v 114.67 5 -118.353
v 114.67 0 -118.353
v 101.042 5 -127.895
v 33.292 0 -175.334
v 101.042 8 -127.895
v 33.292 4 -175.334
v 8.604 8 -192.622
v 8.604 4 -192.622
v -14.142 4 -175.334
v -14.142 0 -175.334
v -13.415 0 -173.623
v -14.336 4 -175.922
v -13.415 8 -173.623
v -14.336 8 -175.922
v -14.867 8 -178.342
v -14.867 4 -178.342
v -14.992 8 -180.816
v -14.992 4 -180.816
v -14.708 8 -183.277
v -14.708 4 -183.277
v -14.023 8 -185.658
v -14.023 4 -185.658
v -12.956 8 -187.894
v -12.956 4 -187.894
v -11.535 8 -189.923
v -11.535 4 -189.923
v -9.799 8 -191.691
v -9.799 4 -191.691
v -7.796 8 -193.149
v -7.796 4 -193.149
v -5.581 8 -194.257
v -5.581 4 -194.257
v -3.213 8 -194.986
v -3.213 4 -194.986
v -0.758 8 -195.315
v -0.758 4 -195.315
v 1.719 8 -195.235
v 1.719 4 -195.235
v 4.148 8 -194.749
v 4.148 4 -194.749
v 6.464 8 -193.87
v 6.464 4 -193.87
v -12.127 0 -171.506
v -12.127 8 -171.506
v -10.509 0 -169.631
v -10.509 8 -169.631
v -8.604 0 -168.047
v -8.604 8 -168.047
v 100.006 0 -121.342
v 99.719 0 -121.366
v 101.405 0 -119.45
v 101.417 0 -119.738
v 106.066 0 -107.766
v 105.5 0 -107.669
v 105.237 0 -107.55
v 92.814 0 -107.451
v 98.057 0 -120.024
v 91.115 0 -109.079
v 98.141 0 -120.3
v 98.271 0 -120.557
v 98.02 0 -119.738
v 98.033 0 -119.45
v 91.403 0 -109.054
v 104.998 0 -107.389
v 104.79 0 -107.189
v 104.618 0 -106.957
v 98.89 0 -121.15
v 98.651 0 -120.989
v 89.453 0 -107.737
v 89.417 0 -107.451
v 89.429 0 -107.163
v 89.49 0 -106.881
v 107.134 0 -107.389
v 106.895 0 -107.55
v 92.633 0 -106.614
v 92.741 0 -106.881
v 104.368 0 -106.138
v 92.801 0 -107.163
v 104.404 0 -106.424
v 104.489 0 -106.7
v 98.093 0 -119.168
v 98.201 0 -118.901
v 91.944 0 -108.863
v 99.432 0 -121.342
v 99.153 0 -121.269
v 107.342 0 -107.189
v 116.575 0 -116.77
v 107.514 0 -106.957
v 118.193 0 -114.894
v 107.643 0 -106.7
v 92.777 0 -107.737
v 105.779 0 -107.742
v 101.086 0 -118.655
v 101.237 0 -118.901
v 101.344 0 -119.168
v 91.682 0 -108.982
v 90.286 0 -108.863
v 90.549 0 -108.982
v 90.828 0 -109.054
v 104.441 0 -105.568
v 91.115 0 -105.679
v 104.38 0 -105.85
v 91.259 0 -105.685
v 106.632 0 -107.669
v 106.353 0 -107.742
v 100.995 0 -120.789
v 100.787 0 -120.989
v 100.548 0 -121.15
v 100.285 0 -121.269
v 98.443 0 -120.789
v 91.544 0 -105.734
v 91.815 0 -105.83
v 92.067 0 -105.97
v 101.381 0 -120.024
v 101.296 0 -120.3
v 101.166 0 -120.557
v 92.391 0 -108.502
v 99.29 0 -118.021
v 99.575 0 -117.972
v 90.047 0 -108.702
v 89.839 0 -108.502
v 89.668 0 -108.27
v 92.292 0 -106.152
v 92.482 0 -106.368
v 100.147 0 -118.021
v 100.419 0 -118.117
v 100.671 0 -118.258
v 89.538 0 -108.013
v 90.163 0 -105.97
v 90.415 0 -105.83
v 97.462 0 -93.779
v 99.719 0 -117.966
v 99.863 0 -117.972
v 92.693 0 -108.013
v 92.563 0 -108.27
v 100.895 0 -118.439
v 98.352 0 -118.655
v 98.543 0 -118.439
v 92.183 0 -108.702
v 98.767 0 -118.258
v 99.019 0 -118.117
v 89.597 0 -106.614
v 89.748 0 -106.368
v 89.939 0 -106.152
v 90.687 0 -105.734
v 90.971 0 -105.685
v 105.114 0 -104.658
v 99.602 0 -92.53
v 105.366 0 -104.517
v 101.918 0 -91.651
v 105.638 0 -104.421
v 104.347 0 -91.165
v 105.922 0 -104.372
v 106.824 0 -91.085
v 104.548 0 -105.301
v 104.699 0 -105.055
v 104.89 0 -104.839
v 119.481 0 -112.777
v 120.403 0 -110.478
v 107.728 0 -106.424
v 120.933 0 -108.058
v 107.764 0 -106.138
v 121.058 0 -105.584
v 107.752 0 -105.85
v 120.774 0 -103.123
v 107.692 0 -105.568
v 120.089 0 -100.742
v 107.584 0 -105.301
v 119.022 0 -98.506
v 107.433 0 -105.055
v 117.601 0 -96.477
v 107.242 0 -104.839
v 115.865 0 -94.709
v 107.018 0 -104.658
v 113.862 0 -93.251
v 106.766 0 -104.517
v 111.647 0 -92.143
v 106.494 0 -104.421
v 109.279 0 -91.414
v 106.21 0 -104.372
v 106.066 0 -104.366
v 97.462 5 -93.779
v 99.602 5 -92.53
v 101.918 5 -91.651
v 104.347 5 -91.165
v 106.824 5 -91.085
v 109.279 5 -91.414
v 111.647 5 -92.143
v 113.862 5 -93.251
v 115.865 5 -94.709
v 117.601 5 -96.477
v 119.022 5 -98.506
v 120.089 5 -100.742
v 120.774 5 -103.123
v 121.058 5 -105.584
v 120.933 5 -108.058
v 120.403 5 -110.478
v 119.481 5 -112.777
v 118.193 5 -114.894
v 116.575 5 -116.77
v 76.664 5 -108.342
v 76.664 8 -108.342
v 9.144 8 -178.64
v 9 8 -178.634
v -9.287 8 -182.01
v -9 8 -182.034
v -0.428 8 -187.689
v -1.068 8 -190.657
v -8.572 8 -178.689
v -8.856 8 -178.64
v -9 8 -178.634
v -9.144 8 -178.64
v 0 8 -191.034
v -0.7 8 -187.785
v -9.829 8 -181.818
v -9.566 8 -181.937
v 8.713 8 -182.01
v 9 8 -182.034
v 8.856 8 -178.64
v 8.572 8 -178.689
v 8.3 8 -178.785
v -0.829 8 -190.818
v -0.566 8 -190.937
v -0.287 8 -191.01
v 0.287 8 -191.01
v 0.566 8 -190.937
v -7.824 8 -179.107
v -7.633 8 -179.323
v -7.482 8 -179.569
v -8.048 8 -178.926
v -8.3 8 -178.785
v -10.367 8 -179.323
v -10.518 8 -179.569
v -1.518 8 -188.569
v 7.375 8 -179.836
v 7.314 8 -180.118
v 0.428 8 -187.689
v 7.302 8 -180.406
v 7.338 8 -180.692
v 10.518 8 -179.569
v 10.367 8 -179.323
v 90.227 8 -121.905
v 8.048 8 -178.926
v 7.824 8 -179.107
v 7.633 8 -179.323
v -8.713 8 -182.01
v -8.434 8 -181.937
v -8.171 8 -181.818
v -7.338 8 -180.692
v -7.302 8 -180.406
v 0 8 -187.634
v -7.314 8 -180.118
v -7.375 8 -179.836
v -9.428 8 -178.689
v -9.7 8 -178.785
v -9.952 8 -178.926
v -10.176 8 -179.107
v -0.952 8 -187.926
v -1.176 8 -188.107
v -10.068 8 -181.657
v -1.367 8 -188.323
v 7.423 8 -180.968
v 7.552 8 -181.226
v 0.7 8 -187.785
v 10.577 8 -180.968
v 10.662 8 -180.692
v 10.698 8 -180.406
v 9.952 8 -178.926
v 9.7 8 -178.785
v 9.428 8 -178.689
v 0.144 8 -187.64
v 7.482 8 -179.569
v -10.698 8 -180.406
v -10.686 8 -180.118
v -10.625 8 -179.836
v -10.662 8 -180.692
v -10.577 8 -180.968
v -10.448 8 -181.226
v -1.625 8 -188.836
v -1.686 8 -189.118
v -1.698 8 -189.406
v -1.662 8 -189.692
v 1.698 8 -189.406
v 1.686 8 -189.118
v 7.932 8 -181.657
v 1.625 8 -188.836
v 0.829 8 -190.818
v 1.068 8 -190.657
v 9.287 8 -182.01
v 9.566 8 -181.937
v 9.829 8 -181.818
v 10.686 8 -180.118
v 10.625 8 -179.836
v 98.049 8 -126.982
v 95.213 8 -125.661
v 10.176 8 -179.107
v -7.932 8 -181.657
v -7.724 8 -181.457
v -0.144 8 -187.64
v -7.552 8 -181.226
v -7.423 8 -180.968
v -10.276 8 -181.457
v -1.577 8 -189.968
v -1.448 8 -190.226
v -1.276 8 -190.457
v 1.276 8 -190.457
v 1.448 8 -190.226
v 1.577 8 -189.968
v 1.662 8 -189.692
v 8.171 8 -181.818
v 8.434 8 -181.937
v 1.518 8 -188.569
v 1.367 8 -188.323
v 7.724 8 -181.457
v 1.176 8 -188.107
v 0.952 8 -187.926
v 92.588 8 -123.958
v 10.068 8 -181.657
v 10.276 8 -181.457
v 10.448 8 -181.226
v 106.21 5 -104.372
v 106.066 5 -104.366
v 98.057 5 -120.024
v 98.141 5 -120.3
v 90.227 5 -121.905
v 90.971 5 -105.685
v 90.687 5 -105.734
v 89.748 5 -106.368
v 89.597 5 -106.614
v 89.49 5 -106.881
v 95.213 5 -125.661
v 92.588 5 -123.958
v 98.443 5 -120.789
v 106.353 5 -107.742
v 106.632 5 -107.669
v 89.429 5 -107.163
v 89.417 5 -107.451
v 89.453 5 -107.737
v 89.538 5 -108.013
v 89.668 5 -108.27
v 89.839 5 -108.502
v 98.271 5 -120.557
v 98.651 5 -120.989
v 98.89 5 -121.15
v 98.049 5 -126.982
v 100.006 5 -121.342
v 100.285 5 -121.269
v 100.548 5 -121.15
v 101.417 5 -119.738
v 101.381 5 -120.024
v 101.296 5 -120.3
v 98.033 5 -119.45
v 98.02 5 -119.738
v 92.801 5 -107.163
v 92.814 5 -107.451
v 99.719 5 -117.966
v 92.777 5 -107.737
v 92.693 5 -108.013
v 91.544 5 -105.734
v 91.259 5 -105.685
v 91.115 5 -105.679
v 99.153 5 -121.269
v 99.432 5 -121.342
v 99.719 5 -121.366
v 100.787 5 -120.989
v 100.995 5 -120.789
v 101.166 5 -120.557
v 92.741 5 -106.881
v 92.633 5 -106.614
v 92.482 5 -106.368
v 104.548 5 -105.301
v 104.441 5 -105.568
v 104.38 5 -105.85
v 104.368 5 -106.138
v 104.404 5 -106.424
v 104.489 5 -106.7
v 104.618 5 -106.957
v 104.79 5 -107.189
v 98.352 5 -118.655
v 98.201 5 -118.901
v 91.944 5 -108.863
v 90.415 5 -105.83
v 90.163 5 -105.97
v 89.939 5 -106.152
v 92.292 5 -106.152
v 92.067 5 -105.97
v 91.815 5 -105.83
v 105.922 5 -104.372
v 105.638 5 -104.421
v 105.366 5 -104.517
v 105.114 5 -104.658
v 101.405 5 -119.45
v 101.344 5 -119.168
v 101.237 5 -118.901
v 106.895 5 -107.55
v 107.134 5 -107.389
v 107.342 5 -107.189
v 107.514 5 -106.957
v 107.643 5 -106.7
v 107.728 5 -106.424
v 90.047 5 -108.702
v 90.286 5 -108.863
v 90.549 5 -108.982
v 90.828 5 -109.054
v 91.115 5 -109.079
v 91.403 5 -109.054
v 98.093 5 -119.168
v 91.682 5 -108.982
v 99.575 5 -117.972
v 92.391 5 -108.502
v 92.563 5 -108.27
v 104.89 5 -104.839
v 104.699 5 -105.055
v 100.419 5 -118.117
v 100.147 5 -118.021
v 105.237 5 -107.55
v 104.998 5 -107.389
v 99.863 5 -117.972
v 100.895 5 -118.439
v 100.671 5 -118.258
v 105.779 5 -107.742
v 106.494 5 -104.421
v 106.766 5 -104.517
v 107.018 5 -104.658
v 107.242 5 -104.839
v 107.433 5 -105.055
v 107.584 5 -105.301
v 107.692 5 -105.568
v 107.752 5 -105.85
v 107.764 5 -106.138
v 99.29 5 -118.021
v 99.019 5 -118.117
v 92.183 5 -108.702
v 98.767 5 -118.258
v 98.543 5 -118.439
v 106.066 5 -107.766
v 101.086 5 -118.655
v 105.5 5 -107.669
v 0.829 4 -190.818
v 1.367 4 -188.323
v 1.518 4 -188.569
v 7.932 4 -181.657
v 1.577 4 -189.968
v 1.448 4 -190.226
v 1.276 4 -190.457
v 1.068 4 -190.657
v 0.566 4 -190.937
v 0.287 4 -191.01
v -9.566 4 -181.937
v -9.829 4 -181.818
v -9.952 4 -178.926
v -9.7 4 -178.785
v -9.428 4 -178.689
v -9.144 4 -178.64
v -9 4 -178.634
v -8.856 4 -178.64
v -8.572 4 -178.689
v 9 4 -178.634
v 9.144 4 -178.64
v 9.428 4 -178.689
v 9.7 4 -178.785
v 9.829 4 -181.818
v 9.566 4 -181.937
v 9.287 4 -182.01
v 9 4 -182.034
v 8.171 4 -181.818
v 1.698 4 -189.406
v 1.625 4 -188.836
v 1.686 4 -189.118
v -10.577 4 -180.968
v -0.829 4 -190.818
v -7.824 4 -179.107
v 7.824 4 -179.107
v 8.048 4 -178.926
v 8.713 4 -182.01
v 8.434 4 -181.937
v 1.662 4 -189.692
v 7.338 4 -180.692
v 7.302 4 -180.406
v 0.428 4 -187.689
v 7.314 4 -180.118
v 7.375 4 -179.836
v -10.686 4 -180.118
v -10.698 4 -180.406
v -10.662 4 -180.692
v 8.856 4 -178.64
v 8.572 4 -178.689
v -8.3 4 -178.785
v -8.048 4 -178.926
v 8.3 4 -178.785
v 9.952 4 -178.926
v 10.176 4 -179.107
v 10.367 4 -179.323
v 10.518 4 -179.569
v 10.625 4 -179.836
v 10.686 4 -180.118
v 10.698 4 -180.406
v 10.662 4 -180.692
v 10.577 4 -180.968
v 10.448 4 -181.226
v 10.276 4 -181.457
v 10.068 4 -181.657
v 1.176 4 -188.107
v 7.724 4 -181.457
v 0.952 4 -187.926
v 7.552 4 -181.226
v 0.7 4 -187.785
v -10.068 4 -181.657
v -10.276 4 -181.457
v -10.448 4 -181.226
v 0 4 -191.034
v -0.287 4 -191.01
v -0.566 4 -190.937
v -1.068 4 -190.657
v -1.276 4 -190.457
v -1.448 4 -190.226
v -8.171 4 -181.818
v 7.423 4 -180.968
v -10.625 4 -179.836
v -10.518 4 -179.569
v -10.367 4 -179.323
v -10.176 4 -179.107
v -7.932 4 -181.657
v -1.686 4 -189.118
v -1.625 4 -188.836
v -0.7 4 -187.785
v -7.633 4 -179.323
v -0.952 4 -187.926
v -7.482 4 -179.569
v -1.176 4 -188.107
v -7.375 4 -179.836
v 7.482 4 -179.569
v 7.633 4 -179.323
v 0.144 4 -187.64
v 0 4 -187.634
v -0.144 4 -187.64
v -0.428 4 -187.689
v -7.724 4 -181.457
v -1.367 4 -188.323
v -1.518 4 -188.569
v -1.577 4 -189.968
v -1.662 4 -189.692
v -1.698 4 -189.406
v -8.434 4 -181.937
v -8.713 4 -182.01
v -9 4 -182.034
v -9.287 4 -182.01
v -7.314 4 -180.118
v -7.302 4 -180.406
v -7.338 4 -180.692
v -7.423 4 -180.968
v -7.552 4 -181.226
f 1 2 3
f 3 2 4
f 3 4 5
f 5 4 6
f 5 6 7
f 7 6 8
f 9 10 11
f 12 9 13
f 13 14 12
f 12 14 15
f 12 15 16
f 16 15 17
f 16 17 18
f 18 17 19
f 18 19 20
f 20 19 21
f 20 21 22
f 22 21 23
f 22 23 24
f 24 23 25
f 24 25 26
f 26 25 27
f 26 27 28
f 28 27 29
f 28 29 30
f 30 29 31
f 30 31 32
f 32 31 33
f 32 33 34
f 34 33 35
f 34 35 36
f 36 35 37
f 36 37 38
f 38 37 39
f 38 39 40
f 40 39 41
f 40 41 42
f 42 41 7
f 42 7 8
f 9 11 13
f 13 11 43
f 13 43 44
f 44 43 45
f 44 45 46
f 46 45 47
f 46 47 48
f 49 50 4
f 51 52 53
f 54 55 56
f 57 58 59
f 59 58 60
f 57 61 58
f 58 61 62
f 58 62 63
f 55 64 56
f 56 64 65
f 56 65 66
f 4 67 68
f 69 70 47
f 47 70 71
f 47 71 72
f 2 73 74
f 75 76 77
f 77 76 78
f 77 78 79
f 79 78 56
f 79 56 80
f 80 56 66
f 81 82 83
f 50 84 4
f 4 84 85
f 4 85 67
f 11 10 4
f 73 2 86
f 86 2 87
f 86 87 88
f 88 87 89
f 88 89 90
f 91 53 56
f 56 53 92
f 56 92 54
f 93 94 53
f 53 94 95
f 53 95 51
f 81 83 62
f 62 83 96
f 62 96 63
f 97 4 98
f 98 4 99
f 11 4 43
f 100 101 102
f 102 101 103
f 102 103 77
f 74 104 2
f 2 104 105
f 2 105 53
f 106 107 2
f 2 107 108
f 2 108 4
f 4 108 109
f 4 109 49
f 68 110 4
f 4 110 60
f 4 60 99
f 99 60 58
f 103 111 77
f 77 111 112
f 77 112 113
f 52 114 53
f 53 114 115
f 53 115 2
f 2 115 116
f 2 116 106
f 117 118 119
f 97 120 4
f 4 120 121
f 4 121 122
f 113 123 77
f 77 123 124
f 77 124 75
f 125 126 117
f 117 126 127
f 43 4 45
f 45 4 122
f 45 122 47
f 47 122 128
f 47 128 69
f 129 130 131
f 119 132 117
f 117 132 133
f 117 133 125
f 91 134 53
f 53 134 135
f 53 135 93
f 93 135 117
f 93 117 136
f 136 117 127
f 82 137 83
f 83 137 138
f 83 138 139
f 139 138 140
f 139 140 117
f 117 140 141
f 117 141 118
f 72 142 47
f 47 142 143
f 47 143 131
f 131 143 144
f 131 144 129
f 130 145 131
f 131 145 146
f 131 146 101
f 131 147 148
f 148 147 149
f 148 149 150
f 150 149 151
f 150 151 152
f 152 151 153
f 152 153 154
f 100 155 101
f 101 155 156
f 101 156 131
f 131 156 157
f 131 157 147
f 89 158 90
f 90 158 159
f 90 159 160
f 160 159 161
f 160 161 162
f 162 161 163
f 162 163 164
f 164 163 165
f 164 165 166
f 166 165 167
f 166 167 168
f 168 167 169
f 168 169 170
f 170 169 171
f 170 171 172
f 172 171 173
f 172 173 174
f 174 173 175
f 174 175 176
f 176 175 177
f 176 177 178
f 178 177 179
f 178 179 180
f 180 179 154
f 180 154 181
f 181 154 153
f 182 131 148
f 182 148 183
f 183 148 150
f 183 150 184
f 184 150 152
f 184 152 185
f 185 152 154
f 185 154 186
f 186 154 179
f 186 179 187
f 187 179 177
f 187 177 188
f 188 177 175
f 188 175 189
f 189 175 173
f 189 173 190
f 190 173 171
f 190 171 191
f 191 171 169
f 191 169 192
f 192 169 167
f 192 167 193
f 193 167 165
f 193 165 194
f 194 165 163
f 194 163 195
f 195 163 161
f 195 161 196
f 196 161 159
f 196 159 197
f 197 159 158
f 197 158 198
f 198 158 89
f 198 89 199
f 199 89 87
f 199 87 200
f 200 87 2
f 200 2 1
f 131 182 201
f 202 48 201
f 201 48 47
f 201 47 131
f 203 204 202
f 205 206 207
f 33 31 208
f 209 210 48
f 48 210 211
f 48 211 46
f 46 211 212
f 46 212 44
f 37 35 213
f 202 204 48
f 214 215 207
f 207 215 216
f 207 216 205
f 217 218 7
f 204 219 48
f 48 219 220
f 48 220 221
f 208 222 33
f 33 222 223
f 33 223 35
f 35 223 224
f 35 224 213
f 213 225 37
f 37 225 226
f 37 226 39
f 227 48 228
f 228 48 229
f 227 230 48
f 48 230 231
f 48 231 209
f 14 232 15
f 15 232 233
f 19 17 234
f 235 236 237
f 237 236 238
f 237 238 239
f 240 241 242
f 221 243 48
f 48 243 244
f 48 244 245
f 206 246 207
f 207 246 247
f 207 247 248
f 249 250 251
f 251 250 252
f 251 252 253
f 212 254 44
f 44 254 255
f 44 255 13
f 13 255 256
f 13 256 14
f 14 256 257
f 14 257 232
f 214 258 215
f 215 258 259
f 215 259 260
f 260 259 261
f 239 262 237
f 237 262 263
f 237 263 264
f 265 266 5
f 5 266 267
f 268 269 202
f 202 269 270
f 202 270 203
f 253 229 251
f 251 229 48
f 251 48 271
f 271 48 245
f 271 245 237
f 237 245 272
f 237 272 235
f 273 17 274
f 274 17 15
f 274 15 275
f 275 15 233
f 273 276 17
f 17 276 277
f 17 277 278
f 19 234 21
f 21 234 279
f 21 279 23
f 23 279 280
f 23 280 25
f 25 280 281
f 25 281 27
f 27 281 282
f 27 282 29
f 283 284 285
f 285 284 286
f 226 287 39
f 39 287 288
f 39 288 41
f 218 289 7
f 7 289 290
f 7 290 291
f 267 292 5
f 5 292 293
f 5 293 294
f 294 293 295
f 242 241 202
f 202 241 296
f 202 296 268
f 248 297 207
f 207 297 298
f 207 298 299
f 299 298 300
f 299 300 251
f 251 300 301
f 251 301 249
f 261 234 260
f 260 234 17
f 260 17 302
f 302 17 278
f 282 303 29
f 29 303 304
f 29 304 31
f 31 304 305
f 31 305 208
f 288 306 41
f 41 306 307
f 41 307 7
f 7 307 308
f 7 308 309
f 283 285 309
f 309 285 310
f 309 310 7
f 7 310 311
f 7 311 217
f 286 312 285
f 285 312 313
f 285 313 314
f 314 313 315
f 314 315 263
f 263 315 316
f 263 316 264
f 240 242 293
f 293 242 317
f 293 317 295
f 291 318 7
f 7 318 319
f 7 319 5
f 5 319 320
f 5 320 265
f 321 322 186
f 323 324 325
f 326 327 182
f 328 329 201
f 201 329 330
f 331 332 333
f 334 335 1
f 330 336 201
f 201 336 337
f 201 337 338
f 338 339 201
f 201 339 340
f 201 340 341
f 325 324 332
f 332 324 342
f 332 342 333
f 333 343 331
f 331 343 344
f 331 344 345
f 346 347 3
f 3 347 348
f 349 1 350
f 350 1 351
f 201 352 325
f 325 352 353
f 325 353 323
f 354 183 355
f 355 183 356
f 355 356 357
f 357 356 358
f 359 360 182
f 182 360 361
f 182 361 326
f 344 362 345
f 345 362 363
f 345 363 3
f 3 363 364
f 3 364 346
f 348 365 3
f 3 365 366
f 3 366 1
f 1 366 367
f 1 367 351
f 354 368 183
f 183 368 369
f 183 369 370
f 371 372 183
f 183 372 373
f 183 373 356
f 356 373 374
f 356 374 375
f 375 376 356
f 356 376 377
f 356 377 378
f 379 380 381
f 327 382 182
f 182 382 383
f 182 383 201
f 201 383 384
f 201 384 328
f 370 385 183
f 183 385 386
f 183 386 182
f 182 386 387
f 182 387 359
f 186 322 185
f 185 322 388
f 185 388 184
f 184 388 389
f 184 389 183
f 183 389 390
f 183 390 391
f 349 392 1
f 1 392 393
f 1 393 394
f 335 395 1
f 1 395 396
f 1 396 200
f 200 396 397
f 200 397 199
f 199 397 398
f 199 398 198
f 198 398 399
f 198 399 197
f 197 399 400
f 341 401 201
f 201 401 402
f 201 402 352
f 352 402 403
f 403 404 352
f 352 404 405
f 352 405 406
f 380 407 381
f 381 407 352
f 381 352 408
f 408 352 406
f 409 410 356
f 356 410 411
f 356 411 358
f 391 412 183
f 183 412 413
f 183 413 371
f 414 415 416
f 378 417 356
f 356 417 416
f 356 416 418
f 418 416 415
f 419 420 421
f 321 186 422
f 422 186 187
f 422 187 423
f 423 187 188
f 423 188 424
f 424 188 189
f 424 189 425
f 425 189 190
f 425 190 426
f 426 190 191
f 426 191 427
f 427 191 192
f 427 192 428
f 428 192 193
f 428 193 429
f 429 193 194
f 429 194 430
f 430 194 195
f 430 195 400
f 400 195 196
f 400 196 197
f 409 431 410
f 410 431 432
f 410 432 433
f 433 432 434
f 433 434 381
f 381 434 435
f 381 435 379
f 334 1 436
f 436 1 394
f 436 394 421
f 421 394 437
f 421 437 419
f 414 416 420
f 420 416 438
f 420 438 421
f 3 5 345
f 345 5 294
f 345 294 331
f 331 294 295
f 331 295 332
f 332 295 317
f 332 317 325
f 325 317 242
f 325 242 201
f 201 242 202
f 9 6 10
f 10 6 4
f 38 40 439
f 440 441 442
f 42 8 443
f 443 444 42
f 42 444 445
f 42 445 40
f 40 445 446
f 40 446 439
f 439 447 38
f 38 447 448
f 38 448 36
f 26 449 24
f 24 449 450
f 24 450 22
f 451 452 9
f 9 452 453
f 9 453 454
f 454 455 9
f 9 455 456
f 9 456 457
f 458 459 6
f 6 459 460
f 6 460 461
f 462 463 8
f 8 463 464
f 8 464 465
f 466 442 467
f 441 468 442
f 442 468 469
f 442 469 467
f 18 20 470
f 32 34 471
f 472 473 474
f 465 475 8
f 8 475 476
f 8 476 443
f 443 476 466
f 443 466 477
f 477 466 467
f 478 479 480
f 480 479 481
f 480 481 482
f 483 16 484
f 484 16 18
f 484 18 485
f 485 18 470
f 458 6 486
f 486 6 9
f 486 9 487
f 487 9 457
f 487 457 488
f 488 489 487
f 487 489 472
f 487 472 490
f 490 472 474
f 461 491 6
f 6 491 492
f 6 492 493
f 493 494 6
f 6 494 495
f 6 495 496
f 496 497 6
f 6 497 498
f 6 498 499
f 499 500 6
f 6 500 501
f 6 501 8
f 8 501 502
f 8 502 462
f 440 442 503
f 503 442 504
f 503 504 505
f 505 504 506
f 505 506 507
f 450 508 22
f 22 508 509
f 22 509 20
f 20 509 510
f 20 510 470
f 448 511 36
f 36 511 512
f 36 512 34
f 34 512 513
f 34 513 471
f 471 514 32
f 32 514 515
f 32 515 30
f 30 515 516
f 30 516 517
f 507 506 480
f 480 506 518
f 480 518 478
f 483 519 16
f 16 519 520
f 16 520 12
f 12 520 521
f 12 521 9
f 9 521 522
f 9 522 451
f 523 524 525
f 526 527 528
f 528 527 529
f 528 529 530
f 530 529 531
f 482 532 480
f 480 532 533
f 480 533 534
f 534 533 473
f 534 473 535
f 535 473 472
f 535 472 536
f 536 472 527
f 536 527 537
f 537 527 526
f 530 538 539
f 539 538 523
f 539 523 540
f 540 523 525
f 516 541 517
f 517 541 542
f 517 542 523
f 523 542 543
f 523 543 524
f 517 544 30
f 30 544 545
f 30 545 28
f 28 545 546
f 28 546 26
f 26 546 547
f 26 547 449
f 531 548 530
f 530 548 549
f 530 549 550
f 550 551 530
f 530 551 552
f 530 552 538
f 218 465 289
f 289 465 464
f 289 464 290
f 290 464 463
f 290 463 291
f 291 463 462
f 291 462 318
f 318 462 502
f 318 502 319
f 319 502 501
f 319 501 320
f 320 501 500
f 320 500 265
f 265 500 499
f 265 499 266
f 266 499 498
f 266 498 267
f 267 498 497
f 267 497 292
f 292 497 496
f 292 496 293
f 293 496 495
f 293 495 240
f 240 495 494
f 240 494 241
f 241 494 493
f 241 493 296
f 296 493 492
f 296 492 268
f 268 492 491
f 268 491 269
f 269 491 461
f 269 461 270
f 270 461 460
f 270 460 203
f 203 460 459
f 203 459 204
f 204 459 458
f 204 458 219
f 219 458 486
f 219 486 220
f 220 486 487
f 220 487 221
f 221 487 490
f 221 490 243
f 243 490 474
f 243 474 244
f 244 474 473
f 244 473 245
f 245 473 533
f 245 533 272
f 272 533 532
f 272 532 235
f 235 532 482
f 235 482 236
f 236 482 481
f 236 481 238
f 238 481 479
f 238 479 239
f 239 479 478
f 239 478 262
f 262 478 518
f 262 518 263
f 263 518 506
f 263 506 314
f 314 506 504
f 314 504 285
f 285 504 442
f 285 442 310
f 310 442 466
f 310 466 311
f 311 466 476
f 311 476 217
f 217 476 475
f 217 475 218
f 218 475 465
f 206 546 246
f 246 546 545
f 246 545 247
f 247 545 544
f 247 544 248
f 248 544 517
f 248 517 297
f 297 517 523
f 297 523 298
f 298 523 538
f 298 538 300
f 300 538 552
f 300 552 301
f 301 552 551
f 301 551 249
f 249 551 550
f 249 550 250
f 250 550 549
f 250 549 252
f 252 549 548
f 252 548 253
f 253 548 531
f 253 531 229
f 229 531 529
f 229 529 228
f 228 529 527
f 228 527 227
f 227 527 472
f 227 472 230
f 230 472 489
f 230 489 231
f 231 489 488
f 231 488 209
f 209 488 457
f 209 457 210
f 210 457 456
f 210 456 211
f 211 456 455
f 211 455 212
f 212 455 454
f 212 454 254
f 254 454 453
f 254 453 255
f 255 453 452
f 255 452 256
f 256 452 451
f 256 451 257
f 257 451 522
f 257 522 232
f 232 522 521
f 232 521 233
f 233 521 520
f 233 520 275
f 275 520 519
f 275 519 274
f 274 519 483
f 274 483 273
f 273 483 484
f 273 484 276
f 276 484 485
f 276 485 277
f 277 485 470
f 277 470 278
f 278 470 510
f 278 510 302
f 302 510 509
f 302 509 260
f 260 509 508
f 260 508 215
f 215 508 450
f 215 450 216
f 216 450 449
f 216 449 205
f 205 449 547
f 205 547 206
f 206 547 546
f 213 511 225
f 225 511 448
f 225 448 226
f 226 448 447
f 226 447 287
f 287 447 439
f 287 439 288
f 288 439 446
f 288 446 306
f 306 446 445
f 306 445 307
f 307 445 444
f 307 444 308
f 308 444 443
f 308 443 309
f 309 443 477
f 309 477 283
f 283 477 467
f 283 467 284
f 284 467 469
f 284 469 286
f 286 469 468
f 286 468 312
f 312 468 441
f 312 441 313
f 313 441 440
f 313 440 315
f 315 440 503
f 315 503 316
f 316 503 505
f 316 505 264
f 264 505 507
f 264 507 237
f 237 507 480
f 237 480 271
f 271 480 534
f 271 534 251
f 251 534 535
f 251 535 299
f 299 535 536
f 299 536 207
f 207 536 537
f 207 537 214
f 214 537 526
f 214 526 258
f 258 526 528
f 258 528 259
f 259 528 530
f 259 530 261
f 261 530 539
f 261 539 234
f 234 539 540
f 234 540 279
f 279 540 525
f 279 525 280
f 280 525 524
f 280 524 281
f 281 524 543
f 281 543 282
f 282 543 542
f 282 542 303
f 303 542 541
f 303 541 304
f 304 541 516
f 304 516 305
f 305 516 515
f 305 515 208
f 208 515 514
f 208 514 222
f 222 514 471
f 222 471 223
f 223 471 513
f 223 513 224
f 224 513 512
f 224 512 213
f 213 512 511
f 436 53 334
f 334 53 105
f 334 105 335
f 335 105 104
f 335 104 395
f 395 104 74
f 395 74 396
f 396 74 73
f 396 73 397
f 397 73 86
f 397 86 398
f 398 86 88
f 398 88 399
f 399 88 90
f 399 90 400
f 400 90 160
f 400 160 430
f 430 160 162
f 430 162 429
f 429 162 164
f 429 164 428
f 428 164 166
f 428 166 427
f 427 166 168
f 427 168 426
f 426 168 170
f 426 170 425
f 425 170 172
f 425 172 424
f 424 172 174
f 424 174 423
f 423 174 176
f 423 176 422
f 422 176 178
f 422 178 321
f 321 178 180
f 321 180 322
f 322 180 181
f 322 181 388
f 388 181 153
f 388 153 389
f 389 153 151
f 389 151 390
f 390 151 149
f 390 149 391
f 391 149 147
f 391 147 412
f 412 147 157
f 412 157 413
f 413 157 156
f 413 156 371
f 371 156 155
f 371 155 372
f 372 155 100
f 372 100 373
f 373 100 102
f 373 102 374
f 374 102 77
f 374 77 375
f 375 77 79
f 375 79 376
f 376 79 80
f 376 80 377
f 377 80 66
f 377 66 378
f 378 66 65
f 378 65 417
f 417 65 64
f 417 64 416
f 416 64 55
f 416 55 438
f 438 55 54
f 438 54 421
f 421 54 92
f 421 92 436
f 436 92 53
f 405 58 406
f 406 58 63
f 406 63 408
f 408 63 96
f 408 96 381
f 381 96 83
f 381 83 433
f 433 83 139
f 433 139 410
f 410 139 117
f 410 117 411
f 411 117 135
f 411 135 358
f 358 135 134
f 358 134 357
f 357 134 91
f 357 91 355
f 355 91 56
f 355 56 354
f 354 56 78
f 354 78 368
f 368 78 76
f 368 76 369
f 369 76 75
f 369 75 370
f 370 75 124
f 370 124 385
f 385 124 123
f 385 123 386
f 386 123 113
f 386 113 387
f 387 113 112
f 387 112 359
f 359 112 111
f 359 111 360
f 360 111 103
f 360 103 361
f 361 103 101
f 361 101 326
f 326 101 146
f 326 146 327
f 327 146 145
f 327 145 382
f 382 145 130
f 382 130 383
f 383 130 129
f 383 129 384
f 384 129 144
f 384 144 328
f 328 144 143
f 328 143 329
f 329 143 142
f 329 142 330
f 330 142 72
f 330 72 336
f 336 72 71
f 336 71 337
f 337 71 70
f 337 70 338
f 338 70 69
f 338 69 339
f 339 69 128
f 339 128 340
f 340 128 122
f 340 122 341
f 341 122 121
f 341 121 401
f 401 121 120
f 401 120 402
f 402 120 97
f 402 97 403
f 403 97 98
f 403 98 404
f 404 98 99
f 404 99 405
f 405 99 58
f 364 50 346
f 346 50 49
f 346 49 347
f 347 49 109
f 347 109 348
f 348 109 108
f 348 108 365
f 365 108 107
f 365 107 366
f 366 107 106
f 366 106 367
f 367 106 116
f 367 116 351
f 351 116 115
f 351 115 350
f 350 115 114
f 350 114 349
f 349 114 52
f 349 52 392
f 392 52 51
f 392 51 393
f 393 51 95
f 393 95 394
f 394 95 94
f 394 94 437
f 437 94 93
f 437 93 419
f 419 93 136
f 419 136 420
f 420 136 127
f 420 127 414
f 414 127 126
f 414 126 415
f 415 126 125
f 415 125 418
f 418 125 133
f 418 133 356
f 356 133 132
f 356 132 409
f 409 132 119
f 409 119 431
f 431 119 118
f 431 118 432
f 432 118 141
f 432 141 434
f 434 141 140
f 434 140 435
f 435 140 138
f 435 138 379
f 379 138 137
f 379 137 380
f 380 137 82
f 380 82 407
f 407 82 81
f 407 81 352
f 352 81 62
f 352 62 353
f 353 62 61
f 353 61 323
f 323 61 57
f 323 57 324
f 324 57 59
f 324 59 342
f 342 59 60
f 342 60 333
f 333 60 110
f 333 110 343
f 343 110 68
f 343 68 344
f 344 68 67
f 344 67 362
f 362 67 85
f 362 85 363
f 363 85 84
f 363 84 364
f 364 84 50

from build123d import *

# Parameters (mm, degrees)
BOSS_EXTRUDE1_DEPTH     = 8
CUT_EXTRUDE1_START      = 8
CUT_EXTRUDE1_DEPTH      = 3
SKETCH1_12_R            = 1.7
CUT_EXTRUDE2_DEPTH      = 4
CUT_EXTRUDE3_DEPTH      = 230.948791245
CUT_EXTRUDE3_DEPTH_BACK = 230.948791245
SKETCH1_13_R            = 1.7


with BuildPart() as part:
    # Sketch1 → Boss-Extrude1 (new body)
    with BuildSketch(Plane(origin=(0, 0, 0), x_dir=(1, 0, 0), z_dir=(0, 1, 0))):
        with BuildLine():
            Line((97.462370633, 93.778736514), (-8.603646545, 168.04696129))
            ThreePointArc((-8.603646545, 168.04696129), (-12.287280664, 188.937888499), (8.603646545, 192.621522618))
            Line((8.603646545, 192.621522618), (114.669663723, 118.353297842))
            ThreePointArc((114.669663723, 118.353297842), (118.353297842, 97.462370633), (97.462370633, 93.778736514))
        make_face()
    extrude(amount=BOSS_EXTRUDE1_DEPTH)

    # Sketch1<11> → Cut-Extrude1 (cut)
    with BuildSketch(Plane(origin=(0, 0, 0), x_dir=(1, 0, 0), z_dir=(0, 1, 0)).offset(CUT_EXTRUDE1_START)):
        with BuildLine():
            Line((-15.839191899, 15.839191899), (90.226825279, 121.905209077))
            ThreePointArc((90.226825279, 121.905209077), (121.905209077, 121.905209077), (121.905209077, 90.226825279))
            Line((121.905209077, 90.226825279), (15.839191899, -15.839191899))
            ThreePointArc((15.839191899, -15.839191899), (-15.839191899, -15.839191899), (-15.839191899, 15.839191899))
        make_face()
    extrude(amount=-CUT_EXTRUDE1_DEPTH, mode=Mode.SUBTRACT)

    # Sketch1<12> → Cut-Extrude2 (cut)
    with BuildSketch(Plane(origin=(0, 0, 0), x_dir=(1, 0, 0), z_dir=(0, 1, 0))):
        with BuildLine():
            ThreePointArc((8.603646545, 192.621522618), (-9.076410828, 192.276551885), (-14.142135624, 175.334241954))
            Line((-14.142135624, 175.334241954), (33.292441968, 175.334241954))
            Line((33.292441968, 175.334241954), (8.603646545, 192.621522618))
        make_face()
        with Locations(Location((-9, 180.334241954, 0), (0, 0, 270))):
            Circle(SKETCH1_12_R, mode=Mode.SUBTRACT)
        with Locations(Location((0, 189.334241954, 0), (0, 0, 270))):
            Circle(SKETCH1_12_R, mode=Mode.SUBTRACT)
        with Locations(Location((9, 180.334241954, 0), (0, 0, 270))):
            Circle(SKETCH1_12_R, mode=Mode.SUBTRACT)
    extrude(amount=CUT_EXTRUDE2_DEPTH, mode=Mode.SUBTRACT)

    # Sketch1<13> → Cut-Extrude3 (cut, two sides: drawn at the far end of the back side and taken through both)
    with BuildSketch(Plane(origin=(0, 0, 0), x_dir=(1, 0, 0), z_dir=(0, 1, 0)).offset(-CUT_EXTRUDE3_DEPTH_BACK)):
        with Locations(Location((0, 189.334241954, 0), (0, 0, 270))):
            Circle(SKETCH1_13_R)
        with Locations(Location((-9, 180.334241954, 0), (0, 0, 270))):
            Circle(SKETCH1_13_R)
        with Locations(Location((9, 180.334241954, 0), (0, 0, 270))):
            Circle(SKETCH1_13_R)
        with Locations(Location((99.718863875, 119.666151183, 0), (0, 0, 270))):
            Circle(SKETCH1_13_R)
        with Locations(Location((91.11521733, 107.378870518, 0), (0, 0, 270))):
            Circle(SKETCH1_13_R)
        with Locations(Location((106.066017178, 106.066017178, 0), (0, 0, 270))):
            Circle(SKETCH1_13_R)
    extrude(amount=CUT_EXTRUDE3_DEPTH + CUT_EXTRUDE3_DEPTH_BACK, mode=Mode.SUBTRACT)


solid = part.part
